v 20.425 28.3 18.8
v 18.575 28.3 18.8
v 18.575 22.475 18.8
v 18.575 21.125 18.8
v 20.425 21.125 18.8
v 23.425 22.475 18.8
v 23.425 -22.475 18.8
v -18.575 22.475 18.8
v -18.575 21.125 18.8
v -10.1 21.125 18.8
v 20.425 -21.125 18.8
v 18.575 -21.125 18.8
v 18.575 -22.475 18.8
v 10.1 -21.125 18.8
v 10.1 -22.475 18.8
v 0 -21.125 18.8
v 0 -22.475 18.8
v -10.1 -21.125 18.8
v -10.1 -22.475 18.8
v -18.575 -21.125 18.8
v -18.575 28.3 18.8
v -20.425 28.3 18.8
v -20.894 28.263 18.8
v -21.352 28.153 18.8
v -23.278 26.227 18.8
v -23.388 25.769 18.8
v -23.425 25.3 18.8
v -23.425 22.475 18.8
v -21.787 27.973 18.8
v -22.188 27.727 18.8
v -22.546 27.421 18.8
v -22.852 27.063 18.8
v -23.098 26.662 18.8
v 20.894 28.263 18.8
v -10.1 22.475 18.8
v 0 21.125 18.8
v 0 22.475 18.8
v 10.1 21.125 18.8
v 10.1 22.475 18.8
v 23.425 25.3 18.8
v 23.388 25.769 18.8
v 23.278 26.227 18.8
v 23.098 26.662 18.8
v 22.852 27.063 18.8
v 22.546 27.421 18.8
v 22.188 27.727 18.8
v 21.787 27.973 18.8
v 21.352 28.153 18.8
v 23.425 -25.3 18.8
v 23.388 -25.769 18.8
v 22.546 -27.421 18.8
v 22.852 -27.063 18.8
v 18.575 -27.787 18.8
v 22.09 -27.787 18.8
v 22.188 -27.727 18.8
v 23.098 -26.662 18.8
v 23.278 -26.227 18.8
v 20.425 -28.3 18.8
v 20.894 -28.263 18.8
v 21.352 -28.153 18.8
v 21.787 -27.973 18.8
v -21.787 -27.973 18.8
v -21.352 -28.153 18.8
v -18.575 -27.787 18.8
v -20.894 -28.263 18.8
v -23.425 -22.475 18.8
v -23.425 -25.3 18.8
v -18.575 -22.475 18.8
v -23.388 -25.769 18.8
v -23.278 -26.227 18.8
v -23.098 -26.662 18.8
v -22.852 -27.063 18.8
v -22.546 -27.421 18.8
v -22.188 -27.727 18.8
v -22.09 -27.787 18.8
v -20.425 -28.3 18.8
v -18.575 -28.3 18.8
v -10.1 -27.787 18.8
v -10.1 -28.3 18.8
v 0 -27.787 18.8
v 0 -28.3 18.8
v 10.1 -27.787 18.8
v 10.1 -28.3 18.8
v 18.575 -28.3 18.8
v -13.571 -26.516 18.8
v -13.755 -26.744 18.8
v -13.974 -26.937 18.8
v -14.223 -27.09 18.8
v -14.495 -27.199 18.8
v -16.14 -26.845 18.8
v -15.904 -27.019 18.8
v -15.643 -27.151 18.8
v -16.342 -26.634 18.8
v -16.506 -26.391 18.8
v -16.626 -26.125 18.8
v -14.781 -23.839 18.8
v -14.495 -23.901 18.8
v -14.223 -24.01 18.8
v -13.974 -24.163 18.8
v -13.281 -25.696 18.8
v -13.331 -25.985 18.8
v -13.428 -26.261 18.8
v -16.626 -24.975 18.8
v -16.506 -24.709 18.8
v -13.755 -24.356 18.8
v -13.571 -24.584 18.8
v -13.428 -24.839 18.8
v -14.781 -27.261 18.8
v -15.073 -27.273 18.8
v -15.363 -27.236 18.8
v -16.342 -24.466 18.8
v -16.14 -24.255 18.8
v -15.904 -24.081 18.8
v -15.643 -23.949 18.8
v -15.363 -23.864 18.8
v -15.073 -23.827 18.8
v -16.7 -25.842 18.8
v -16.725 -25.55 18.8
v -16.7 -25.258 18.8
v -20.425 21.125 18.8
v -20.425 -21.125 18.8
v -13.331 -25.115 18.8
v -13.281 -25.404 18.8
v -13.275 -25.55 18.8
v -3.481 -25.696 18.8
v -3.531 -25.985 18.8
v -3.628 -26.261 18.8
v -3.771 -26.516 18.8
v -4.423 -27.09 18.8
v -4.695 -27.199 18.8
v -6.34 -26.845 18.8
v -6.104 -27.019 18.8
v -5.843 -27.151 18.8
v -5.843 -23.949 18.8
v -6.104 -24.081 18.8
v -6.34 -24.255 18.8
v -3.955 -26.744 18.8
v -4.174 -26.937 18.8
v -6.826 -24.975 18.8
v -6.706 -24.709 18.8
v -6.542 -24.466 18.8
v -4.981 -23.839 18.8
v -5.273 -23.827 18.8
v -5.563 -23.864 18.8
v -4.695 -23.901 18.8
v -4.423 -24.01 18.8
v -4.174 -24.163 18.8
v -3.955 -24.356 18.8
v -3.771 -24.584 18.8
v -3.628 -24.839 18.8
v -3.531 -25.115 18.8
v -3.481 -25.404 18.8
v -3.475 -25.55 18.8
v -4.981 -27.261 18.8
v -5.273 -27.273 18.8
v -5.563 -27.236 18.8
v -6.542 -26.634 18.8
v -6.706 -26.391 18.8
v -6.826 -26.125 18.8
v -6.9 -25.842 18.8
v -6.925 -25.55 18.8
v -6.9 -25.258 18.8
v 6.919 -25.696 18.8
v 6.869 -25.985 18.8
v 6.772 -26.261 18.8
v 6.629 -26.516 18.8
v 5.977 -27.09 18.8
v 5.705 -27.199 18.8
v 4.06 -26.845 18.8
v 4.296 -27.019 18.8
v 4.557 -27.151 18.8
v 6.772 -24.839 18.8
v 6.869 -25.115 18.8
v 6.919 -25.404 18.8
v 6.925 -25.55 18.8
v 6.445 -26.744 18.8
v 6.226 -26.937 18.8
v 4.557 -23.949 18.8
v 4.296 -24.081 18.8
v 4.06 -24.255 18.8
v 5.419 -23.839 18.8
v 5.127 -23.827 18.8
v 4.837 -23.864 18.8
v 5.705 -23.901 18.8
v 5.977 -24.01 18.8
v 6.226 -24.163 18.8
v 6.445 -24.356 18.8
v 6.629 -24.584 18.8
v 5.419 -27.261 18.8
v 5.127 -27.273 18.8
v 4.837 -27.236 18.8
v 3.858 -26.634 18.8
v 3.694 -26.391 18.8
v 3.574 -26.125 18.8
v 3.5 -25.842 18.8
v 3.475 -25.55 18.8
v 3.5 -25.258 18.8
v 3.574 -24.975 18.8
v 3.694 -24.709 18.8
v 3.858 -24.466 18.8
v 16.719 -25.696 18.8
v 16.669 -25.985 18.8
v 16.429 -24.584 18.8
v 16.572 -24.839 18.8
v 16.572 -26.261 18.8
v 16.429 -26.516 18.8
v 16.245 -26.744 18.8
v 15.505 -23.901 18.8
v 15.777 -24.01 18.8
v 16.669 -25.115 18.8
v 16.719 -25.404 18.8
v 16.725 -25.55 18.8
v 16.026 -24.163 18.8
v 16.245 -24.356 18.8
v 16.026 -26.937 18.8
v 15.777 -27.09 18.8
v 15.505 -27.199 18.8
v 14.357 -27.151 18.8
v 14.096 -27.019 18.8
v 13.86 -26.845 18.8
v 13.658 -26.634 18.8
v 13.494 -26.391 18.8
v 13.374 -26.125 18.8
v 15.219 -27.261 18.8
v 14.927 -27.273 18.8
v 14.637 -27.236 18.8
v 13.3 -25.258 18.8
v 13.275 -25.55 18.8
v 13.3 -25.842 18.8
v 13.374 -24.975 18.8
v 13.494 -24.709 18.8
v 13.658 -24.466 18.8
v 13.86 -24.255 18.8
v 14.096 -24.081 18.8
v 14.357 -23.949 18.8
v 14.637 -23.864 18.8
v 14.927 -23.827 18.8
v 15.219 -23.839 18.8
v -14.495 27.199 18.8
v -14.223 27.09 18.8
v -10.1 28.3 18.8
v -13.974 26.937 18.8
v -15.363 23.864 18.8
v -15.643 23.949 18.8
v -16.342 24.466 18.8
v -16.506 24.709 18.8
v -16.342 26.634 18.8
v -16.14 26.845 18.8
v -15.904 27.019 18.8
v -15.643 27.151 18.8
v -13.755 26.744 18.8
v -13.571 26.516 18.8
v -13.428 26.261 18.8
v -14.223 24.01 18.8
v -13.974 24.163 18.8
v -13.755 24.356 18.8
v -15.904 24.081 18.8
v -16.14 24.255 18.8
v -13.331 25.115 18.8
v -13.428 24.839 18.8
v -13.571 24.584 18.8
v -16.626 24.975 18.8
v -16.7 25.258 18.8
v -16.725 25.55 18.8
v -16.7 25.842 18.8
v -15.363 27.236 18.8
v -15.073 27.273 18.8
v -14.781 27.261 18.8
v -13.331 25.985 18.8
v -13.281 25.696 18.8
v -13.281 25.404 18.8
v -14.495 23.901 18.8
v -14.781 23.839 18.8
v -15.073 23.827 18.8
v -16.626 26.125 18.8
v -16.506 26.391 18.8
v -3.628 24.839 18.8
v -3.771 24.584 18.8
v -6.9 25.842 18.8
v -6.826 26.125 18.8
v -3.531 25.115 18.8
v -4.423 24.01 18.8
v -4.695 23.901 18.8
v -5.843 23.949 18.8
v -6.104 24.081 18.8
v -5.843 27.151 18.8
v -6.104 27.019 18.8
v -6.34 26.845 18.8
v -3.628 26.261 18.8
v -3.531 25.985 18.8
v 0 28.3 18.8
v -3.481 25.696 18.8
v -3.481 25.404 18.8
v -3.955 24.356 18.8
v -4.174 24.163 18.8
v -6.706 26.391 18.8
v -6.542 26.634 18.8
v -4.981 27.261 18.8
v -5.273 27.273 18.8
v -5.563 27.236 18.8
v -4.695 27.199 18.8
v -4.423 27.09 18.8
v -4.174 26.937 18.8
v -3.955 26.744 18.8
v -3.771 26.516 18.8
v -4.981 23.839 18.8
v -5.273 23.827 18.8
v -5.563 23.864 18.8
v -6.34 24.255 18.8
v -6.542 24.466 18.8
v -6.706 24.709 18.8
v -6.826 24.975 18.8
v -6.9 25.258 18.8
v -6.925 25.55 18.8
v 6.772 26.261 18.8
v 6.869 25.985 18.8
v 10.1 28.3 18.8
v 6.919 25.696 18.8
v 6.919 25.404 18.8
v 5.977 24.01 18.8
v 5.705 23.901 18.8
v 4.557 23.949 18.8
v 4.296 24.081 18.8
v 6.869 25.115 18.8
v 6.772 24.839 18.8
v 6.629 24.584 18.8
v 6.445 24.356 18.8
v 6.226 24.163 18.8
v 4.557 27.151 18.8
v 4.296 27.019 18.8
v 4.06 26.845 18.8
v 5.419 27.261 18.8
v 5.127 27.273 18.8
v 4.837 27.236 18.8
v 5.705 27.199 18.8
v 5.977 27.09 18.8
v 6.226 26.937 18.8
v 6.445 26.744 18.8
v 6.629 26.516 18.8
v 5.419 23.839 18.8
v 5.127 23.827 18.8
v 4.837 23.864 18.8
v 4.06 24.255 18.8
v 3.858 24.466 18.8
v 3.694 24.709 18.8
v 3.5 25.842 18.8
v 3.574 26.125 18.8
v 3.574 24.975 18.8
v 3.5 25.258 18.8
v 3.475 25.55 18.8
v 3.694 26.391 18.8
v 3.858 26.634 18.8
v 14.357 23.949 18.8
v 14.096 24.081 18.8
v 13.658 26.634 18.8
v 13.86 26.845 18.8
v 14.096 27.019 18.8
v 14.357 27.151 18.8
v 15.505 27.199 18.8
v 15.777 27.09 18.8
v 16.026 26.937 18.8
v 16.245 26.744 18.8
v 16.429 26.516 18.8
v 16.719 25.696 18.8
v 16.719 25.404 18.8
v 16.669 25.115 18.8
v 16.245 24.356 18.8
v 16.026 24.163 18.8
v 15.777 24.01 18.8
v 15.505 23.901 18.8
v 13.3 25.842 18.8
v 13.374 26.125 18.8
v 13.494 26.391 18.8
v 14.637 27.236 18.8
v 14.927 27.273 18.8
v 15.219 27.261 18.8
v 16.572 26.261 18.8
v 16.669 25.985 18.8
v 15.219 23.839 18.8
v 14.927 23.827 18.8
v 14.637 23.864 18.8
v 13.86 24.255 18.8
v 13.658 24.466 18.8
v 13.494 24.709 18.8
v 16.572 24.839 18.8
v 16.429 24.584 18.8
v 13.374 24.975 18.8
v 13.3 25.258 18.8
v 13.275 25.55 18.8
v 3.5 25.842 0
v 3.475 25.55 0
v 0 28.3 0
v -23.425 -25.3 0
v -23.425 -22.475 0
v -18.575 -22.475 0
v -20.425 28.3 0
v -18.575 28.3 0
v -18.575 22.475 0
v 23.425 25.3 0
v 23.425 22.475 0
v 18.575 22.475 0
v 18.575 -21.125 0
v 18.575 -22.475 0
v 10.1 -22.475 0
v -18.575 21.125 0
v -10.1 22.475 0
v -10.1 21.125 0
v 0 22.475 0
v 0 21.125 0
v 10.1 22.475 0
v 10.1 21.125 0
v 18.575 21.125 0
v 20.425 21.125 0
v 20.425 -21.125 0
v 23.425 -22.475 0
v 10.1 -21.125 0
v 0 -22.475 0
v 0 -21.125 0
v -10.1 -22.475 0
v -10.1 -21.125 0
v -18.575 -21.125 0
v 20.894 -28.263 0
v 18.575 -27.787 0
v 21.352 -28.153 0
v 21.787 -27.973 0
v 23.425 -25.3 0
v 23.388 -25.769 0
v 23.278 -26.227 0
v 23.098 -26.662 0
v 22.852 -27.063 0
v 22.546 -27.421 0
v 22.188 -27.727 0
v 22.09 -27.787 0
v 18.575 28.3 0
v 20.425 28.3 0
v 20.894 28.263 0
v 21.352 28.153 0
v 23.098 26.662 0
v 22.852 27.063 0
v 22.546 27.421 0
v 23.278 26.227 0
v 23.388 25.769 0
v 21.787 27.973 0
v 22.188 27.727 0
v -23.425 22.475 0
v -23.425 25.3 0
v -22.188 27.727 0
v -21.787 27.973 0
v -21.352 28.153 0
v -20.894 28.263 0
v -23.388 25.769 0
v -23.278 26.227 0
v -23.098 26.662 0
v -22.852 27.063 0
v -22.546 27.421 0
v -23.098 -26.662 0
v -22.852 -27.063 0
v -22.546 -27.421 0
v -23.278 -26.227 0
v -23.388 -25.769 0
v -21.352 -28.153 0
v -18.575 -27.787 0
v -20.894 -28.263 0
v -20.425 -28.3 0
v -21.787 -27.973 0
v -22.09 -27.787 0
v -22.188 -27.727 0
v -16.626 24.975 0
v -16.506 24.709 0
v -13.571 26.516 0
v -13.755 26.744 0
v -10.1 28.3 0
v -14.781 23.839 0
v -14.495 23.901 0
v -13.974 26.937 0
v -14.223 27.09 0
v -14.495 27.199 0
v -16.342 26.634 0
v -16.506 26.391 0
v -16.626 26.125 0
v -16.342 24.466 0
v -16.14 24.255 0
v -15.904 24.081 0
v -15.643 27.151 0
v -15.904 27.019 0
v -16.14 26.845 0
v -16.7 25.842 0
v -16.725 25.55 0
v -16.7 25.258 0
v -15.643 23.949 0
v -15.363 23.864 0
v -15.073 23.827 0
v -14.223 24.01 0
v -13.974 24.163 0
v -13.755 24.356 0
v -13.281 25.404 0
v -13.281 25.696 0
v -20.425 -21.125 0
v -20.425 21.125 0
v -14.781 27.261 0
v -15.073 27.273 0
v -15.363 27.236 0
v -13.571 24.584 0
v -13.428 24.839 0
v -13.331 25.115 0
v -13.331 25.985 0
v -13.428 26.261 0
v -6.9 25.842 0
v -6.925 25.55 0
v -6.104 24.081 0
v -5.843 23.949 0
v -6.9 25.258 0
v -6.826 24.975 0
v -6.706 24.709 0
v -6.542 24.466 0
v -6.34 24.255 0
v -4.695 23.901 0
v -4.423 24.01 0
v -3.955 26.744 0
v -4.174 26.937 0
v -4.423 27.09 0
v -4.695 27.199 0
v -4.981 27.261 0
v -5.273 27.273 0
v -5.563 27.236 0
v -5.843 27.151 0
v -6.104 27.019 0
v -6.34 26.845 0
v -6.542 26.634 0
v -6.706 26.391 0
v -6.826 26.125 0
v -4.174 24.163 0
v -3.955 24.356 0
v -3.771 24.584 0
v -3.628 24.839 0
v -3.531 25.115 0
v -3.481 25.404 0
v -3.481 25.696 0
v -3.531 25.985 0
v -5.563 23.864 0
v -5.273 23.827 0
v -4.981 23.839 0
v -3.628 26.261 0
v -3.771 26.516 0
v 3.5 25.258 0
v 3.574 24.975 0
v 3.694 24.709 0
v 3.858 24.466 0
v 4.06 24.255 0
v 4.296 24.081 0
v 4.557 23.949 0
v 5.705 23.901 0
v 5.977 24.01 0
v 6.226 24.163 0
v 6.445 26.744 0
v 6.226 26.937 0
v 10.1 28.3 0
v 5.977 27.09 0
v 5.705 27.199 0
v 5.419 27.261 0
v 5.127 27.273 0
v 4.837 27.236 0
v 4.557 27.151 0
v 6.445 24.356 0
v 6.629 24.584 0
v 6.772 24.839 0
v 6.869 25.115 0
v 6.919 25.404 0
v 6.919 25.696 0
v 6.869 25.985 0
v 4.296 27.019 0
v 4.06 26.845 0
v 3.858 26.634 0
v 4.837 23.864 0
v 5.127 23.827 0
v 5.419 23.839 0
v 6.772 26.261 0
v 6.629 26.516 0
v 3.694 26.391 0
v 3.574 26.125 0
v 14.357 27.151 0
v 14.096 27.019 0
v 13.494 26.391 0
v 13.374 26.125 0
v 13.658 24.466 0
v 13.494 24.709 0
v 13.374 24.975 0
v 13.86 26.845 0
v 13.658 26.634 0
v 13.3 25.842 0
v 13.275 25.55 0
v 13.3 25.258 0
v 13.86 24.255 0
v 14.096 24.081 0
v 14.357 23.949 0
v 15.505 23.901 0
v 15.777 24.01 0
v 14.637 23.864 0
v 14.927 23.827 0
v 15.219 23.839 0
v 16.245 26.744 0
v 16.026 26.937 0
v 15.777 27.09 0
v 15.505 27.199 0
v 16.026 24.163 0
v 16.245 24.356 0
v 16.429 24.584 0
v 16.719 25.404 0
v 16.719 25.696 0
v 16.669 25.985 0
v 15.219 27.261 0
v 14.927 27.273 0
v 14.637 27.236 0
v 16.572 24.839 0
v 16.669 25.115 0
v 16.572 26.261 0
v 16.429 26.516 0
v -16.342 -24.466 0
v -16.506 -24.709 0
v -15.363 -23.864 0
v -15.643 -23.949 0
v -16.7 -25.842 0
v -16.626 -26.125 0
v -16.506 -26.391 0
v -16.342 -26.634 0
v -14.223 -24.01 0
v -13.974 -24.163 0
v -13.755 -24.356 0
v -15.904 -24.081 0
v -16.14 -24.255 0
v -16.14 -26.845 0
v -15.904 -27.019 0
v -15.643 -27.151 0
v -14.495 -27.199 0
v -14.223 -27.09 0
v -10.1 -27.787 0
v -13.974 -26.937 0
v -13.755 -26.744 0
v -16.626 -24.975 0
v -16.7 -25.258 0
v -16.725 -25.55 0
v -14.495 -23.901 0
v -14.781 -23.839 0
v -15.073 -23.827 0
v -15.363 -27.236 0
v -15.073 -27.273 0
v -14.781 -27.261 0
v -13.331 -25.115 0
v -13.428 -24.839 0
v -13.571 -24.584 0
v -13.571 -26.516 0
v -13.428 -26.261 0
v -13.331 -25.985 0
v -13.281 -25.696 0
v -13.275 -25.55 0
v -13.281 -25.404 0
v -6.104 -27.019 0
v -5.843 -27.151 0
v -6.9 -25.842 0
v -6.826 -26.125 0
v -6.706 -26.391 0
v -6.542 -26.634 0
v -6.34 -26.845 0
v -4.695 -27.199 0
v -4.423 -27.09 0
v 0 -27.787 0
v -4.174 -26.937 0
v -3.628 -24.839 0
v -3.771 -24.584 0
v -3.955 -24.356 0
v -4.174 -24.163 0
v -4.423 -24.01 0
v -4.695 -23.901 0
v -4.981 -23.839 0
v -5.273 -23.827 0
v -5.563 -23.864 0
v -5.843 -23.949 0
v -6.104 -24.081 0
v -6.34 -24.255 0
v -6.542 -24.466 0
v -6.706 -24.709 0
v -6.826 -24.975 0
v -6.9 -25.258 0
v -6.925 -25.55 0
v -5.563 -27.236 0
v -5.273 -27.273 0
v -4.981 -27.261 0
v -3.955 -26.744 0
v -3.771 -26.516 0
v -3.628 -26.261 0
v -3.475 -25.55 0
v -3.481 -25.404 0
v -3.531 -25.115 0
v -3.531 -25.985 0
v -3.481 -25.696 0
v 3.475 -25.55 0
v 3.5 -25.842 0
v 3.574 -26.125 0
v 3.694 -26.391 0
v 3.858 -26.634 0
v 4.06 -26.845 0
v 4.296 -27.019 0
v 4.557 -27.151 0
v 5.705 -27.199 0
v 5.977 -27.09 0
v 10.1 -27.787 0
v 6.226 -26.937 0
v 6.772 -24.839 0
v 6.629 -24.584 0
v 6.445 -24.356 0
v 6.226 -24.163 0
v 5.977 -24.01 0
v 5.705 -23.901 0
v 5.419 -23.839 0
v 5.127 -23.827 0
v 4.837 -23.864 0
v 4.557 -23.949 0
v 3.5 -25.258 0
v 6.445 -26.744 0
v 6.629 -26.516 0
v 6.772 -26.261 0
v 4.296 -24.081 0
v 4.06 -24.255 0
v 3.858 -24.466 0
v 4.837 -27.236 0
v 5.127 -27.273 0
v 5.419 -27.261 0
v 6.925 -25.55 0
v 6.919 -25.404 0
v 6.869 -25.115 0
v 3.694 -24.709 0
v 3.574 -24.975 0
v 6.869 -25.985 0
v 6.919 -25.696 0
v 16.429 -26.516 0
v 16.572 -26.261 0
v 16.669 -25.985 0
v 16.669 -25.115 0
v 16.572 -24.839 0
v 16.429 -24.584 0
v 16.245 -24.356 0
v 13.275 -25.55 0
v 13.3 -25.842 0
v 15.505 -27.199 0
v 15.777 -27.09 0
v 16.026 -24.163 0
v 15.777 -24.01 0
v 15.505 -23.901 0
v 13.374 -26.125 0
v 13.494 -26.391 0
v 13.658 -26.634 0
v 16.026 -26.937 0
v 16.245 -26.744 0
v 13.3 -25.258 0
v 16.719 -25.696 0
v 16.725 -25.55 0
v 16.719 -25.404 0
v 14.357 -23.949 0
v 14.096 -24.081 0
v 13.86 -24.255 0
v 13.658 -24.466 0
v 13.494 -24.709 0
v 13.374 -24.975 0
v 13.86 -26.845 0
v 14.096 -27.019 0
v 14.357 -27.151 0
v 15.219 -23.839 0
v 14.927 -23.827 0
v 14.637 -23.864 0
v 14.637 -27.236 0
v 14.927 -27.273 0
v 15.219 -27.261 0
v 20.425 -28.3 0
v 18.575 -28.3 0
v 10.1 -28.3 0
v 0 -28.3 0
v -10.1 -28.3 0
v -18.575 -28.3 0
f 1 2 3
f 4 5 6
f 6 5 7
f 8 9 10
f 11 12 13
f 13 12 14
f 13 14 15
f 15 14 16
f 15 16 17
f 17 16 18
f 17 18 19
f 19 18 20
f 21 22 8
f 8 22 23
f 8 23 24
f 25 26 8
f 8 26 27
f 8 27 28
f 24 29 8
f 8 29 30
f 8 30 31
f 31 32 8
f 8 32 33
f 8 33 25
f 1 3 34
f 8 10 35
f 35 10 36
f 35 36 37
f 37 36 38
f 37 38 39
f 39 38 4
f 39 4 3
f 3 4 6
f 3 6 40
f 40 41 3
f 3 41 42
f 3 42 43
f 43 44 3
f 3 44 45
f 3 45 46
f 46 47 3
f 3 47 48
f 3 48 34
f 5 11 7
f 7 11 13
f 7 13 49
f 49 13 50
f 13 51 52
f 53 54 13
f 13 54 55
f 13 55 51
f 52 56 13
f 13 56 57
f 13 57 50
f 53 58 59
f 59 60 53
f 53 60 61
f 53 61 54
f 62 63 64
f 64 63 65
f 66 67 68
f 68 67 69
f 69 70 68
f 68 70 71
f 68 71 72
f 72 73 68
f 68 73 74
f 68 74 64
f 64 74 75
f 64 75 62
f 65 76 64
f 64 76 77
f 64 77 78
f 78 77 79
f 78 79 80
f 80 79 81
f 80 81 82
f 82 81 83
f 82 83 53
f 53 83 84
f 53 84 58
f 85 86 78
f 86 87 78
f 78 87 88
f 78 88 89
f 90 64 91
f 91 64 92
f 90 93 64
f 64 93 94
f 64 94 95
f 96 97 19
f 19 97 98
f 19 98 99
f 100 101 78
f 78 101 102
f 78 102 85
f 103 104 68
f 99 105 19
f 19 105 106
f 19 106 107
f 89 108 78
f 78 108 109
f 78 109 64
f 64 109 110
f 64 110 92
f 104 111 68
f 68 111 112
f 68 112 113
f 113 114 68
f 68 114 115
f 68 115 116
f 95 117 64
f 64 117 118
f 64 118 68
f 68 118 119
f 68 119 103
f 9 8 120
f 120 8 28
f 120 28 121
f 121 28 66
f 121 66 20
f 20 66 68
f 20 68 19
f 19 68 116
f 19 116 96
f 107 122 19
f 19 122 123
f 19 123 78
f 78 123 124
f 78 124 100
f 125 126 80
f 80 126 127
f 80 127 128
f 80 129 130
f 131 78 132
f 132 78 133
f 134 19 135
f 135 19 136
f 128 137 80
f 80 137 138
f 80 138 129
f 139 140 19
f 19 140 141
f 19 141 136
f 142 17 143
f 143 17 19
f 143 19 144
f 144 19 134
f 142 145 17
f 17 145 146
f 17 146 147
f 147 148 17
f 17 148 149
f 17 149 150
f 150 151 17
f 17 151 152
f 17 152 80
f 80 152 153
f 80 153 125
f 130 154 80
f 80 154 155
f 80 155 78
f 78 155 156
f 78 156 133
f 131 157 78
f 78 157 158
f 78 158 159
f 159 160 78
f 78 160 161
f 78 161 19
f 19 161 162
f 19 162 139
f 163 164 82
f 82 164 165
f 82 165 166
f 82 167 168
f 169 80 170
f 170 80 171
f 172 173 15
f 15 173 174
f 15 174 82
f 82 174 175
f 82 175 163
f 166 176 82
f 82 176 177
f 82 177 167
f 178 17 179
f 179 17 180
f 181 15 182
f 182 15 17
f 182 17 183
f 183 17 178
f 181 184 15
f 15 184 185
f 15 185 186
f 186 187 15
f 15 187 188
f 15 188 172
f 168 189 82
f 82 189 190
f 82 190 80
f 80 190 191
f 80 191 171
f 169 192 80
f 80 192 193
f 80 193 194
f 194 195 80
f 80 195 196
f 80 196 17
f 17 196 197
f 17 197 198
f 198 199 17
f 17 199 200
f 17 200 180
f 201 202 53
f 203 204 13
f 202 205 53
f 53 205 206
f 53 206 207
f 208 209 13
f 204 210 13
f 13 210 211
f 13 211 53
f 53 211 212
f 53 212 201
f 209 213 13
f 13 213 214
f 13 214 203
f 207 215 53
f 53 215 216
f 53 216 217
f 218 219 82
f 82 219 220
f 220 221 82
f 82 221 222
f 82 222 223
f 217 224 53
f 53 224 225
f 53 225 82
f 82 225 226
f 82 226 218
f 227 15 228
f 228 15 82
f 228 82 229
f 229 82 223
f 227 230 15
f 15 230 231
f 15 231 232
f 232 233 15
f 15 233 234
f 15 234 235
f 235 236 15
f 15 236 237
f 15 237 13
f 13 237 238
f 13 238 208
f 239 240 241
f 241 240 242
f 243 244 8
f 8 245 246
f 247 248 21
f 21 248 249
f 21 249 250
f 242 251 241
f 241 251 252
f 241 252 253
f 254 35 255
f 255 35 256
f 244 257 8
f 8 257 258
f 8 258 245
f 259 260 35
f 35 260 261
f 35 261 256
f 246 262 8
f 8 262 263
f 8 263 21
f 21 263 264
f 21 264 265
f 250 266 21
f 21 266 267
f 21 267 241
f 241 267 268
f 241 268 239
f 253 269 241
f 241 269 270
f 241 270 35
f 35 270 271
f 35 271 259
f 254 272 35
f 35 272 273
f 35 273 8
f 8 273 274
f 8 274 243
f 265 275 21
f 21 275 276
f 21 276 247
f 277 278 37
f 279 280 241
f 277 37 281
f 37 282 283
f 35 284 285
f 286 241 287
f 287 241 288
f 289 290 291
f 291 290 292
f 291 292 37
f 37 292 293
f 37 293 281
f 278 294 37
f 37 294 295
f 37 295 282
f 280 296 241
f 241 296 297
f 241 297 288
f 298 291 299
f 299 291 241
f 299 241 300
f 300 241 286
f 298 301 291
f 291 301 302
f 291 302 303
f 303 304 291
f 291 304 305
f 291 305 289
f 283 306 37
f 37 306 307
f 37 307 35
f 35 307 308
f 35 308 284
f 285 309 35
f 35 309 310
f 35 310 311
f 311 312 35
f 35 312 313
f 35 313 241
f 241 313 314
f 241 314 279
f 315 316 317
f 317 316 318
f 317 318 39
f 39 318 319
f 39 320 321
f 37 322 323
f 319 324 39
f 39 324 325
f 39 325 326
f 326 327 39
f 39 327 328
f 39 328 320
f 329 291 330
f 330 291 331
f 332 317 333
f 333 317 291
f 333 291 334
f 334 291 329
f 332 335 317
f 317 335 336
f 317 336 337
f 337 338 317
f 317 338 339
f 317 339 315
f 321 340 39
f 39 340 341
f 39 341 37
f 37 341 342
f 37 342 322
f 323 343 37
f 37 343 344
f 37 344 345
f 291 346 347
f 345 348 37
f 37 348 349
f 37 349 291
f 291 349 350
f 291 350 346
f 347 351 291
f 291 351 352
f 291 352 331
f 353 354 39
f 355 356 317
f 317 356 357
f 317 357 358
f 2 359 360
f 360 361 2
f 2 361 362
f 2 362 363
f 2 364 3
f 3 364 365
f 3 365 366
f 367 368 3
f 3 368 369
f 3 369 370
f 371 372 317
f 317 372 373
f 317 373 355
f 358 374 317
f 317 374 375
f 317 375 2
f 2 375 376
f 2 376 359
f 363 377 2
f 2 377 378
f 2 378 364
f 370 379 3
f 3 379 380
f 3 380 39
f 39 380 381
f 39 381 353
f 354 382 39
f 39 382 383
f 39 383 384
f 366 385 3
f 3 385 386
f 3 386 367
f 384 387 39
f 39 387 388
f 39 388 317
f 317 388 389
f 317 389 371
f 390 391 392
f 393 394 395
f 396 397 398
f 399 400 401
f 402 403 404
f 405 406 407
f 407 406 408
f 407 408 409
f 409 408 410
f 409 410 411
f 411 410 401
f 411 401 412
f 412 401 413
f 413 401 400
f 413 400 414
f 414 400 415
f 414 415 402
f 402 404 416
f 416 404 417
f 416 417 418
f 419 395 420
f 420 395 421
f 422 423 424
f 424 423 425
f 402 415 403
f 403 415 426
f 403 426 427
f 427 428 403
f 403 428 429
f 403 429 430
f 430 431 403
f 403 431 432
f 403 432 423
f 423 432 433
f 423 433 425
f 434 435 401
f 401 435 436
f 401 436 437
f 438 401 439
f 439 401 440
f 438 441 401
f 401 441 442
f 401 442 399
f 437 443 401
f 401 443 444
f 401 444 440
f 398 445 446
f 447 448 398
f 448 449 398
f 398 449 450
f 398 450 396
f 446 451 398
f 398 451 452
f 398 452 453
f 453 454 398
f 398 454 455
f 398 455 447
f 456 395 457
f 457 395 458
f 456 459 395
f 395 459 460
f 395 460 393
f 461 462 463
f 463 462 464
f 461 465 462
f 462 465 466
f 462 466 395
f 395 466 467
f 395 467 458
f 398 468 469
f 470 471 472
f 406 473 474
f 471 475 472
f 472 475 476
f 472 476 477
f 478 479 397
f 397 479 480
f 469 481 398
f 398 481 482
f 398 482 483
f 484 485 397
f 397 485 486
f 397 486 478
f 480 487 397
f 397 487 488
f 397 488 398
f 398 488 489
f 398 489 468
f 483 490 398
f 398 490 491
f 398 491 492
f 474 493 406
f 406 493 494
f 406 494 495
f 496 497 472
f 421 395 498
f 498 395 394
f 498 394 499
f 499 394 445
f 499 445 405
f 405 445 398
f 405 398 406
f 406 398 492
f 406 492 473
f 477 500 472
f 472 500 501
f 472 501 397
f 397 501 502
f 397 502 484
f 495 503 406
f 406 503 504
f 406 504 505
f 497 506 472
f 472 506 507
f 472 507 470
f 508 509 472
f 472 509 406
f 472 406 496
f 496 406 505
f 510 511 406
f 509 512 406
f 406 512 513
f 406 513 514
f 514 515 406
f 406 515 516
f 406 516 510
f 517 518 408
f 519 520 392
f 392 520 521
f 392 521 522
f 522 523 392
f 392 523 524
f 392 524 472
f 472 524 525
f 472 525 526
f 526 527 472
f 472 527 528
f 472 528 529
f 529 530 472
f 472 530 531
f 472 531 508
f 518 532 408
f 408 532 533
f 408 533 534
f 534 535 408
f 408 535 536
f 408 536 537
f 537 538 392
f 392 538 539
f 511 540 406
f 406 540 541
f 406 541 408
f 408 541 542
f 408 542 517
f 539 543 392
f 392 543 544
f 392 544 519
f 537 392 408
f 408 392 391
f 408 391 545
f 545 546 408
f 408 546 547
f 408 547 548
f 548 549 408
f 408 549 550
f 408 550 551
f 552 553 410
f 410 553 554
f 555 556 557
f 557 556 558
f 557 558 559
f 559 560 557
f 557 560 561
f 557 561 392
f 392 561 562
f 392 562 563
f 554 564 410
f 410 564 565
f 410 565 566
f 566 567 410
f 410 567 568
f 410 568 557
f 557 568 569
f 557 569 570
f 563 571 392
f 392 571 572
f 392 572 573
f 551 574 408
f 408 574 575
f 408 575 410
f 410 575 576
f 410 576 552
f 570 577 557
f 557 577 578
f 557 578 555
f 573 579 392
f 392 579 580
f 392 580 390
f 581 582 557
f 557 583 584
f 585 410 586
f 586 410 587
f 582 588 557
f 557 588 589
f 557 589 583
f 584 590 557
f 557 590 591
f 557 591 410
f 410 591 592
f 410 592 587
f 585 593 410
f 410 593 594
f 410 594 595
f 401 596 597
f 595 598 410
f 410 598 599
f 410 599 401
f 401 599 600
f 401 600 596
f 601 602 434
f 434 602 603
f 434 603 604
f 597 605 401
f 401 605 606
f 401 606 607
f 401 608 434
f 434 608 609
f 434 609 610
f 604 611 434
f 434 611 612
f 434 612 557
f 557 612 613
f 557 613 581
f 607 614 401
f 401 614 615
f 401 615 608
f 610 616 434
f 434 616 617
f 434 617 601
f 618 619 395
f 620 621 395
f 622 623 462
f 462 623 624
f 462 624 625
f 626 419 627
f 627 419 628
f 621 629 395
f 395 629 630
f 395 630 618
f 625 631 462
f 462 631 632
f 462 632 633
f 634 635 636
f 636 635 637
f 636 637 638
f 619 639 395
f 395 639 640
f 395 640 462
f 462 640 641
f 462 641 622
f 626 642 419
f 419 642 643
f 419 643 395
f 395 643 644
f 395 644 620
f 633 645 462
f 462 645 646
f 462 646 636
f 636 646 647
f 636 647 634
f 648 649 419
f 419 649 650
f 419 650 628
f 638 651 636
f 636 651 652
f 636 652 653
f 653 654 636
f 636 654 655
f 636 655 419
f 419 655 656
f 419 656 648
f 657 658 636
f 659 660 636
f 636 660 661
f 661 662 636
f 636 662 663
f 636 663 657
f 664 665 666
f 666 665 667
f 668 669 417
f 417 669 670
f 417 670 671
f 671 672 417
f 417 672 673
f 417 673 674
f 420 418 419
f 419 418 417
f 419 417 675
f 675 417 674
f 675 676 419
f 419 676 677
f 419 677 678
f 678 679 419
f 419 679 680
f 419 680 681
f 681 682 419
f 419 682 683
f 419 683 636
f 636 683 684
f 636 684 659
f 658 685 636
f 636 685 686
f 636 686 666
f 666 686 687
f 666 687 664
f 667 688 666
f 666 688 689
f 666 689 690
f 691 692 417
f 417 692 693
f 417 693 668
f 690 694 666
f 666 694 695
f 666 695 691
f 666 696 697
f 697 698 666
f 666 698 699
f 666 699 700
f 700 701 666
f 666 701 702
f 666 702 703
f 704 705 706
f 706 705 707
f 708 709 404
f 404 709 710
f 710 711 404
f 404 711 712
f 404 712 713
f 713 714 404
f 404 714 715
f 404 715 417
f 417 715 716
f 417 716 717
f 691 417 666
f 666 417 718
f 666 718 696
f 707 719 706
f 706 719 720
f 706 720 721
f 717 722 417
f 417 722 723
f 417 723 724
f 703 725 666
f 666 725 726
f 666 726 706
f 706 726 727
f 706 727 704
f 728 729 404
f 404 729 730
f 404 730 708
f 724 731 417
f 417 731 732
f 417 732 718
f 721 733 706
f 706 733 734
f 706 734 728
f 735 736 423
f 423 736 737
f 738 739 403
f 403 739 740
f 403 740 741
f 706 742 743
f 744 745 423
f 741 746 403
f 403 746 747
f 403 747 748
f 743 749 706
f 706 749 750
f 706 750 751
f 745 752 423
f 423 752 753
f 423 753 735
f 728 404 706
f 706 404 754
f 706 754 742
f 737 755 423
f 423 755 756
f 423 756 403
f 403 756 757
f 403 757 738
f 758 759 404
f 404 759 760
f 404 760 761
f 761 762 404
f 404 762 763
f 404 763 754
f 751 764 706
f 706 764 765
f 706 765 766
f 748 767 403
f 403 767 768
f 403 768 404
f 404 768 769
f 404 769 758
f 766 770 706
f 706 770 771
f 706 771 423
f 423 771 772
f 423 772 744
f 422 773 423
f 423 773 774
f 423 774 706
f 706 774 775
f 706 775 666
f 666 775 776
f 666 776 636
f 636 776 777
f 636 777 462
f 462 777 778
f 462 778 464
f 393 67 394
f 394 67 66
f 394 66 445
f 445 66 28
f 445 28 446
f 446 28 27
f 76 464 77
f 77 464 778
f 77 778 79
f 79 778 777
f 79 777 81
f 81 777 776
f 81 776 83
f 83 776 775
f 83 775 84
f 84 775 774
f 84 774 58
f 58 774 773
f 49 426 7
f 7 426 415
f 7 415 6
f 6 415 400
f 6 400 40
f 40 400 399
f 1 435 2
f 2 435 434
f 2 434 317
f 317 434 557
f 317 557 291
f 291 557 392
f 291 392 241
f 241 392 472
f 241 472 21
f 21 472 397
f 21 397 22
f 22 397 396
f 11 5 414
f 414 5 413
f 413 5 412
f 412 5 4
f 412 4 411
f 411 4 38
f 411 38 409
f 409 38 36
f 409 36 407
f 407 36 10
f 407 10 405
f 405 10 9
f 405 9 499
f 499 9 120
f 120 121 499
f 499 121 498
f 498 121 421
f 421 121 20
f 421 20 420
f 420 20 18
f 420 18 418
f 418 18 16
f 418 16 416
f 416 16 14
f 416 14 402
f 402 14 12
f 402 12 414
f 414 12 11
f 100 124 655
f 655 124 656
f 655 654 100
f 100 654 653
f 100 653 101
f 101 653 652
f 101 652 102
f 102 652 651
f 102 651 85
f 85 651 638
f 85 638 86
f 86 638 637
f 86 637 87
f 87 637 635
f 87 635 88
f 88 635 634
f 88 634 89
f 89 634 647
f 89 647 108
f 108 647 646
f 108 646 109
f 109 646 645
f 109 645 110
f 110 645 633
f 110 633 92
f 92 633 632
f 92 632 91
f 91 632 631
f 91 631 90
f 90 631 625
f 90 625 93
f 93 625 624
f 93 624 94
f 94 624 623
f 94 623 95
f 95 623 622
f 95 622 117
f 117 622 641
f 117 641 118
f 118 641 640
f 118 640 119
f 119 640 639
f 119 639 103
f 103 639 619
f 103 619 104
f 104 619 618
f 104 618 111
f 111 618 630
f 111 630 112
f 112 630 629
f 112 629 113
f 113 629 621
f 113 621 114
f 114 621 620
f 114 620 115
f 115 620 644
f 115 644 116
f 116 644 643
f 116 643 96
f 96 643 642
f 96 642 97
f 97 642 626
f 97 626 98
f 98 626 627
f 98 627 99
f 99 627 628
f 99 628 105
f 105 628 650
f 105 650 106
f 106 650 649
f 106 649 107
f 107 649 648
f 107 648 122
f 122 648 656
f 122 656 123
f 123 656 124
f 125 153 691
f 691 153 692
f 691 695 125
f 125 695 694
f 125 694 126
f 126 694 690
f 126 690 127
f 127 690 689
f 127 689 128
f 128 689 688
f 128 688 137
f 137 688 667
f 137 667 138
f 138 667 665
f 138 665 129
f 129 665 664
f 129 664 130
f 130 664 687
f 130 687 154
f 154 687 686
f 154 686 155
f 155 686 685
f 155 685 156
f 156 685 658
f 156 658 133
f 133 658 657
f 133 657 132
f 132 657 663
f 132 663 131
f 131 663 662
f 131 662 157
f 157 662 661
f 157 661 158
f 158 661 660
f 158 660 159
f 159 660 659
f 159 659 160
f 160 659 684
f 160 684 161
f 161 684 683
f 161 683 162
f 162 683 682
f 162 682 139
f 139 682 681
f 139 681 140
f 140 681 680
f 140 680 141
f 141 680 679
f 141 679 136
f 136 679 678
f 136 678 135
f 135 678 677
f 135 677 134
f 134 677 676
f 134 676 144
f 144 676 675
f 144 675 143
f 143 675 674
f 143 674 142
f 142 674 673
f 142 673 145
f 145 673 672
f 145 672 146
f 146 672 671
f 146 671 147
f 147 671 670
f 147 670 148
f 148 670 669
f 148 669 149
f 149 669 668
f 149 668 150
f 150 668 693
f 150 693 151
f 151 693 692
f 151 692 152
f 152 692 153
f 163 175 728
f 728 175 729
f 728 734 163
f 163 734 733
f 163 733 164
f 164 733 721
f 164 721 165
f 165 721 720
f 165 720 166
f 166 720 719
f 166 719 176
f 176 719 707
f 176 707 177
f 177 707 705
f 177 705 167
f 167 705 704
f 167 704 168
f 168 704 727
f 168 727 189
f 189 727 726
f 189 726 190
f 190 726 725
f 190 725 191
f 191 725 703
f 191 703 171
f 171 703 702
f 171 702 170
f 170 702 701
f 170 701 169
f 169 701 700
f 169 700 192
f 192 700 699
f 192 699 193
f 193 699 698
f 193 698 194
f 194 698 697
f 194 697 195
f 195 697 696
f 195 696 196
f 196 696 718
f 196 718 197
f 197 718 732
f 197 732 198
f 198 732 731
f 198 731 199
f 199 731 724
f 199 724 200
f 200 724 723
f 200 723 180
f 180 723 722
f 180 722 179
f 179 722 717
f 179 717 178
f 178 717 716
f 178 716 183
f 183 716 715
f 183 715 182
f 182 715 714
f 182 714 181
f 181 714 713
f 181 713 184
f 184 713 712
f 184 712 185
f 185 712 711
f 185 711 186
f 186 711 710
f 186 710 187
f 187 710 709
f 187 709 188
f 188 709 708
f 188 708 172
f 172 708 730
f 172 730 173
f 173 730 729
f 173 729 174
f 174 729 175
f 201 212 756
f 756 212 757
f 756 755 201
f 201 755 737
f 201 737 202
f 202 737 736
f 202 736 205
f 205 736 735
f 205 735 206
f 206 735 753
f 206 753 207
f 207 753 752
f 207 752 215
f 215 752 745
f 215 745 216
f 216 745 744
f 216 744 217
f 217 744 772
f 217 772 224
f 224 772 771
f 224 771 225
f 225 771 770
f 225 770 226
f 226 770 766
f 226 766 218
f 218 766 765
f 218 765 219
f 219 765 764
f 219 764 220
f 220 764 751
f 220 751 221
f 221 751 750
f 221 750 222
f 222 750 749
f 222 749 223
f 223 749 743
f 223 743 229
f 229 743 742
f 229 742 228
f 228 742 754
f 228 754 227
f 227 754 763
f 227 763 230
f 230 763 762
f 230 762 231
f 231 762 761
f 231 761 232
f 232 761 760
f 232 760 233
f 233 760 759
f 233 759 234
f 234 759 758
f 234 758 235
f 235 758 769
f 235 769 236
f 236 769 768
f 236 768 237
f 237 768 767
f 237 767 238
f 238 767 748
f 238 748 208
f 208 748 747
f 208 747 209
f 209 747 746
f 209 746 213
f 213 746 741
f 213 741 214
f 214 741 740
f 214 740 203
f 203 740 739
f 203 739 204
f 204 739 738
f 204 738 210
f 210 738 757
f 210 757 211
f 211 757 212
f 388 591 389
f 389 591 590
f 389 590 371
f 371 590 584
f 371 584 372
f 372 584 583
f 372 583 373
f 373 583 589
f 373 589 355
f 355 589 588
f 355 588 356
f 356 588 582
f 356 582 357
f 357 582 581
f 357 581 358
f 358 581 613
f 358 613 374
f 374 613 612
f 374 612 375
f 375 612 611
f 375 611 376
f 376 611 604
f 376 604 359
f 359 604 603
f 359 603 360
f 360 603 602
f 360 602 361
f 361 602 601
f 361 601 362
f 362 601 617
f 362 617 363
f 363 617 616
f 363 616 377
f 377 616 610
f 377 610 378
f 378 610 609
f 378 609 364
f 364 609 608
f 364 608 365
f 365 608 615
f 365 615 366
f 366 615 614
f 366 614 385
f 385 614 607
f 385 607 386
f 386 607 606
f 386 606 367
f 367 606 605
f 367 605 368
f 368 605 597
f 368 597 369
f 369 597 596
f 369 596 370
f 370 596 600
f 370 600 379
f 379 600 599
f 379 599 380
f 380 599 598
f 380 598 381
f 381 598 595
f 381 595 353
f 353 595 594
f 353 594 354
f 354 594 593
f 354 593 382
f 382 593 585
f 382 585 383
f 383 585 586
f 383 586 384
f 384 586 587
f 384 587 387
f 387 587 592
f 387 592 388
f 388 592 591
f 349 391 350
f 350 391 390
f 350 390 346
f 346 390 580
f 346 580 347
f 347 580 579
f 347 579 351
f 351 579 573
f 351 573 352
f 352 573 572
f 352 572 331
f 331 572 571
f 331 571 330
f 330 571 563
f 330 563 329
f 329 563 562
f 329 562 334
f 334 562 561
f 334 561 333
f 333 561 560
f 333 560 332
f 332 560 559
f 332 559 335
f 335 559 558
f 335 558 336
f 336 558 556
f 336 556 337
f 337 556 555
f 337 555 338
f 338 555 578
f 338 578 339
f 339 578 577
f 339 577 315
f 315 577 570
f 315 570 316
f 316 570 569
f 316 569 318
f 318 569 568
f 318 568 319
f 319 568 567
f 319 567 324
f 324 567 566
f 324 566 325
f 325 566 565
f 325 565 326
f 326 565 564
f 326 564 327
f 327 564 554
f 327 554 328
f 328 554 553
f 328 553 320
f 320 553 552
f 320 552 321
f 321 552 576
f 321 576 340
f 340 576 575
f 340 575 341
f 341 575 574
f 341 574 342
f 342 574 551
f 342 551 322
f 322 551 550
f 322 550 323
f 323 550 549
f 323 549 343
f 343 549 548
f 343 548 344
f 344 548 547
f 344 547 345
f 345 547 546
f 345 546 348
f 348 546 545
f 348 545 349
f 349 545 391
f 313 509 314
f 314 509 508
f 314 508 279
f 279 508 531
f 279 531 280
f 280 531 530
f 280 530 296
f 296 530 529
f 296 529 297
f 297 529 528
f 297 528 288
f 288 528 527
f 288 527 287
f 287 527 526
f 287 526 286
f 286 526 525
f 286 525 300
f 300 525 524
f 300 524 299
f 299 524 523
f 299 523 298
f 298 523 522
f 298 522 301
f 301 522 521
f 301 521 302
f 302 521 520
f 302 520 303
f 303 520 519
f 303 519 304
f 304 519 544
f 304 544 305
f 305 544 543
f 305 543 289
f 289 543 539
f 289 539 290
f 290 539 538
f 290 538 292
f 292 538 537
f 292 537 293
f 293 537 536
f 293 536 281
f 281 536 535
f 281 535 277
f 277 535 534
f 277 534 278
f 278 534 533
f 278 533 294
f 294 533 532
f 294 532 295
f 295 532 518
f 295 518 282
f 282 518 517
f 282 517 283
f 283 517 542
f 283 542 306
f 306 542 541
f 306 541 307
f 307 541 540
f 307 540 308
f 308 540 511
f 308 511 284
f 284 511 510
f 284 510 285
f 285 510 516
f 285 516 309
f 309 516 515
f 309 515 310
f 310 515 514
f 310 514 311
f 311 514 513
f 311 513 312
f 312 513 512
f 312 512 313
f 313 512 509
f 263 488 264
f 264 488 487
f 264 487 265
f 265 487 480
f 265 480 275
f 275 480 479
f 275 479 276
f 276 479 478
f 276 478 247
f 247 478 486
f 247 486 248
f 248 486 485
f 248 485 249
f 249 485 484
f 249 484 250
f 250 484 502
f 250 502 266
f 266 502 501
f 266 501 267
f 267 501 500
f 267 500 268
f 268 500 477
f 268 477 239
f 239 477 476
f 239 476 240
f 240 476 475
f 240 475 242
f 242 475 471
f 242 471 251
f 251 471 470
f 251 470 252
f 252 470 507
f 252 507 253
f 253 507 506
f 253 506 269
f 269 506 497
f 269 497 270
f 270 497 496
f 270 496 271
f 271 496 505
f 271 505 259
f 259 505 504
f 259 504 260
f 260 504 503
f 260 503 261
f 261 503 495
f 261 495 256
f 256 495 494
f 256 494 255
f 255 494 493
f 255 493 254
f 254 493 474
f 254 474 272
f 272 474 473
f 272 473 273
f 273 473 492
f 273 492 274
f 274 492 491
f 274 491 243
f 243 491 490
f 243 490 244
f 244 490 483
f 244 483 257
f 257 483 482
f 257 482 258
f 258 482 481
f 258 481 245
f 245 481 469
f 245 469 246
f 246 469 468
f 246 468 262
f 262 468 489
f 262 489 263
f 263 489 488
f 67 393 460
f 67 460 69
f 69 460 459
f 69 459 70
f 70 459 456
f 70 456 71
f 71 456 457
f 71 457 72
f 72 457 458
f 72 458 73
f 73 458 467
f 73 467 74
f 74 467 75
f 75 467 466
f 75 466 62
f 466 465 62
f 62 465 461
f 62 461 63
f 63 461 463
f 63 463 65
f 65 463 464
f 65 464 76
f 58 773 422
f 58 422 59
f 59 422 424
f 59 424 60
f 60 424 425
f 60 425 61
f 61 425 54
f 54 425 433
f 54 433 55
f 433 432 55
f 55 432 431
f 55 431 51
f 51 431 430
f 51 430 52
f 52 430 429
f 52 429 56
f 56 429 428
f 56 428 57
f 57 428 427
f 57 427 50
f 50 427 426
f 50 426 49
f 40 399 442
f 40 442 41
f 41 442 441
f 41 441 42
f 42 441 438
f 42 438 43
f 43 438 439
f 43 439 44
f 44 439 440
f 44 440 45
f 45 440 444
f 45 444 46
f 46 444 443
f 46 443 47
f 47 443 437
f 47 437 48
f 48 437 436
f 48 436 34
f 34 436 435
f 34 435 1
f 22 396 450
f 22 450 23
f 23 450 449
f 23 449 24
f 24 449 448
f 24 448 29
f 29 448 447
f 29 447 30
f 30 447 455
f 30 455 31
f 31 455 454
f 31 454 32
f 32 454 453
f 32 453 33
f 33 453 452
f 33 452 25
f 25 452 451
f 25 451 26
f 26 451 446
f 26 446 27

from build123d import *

# Parameters (mm, degrees)
SKETCH1_W           = 46.85
SKETCH1_H           = 56.6
SKETCH1_R           = 1.725
SKETCH1_W_2         = 40.85
SKETCH1_H_2         = 42.25
BOSS_EXTRUDE1_DEPTH = 18.8
FILLET1_R           = 3


with BuildPart() as part:
    # Sketch1 → Boss-Extrude1 (new body)
    with BuildSketch(Plane.XY):
        Rectangle(SKETCH1_W, SKETCH1_H)
        with Locations((-15, -25.55)):
            Circle(SKETCH1_R, mode=Mode.SUBTRACT)
        with Locations((-5.2, -25.55)):
            Circle(SKETCH1_R, mode=Mode.SUBTRACT)
        with Locations((5.2, -25.55)):
            Circle(SKETCH1_R, mode=Mode.SUBTRACT)
        with Locations((15, -25.55)):
            Circle(SKETCH1_R, mode=Mode.SUBTRACT)
        with Locations((15, 25.55)):
            Circle(SKETCH1_R, mode=Mode.SUBTRACT)
        with Locations((5.2, 25.55)):
            Circle(SKETCH1_R, mode=Mode.SUBTRACT)
        with Locations((-5.2, 25.55)):
            Circle(SKETCH1_R, mode=Mode.SUBTRACT)
        with Locations((-15, 25.55)):
            Circle(SKETCH1_R, mode=Mode.SUBTRACT)
        Rectangle(SKETCH1_W_2, SKETCH1_H_2, mode=Mode.SUBTRACT)
    extrude(amount=BOSS_EXTRUDE1_DEPTH)

    # Fillet1
    fillet1_edges = [part.edges().sort_by_distance(p)[0] for p in [
        (-23.425, -28.3, 9.4),
        (23.425, -28.3, 9.4),
        (23.425, 28.3, 9.4),
        (-23.425, 28.3, 9.4),
    ]]
    fillet(fillet1_edges, radius=FILLET1_R)


solid = part.part
